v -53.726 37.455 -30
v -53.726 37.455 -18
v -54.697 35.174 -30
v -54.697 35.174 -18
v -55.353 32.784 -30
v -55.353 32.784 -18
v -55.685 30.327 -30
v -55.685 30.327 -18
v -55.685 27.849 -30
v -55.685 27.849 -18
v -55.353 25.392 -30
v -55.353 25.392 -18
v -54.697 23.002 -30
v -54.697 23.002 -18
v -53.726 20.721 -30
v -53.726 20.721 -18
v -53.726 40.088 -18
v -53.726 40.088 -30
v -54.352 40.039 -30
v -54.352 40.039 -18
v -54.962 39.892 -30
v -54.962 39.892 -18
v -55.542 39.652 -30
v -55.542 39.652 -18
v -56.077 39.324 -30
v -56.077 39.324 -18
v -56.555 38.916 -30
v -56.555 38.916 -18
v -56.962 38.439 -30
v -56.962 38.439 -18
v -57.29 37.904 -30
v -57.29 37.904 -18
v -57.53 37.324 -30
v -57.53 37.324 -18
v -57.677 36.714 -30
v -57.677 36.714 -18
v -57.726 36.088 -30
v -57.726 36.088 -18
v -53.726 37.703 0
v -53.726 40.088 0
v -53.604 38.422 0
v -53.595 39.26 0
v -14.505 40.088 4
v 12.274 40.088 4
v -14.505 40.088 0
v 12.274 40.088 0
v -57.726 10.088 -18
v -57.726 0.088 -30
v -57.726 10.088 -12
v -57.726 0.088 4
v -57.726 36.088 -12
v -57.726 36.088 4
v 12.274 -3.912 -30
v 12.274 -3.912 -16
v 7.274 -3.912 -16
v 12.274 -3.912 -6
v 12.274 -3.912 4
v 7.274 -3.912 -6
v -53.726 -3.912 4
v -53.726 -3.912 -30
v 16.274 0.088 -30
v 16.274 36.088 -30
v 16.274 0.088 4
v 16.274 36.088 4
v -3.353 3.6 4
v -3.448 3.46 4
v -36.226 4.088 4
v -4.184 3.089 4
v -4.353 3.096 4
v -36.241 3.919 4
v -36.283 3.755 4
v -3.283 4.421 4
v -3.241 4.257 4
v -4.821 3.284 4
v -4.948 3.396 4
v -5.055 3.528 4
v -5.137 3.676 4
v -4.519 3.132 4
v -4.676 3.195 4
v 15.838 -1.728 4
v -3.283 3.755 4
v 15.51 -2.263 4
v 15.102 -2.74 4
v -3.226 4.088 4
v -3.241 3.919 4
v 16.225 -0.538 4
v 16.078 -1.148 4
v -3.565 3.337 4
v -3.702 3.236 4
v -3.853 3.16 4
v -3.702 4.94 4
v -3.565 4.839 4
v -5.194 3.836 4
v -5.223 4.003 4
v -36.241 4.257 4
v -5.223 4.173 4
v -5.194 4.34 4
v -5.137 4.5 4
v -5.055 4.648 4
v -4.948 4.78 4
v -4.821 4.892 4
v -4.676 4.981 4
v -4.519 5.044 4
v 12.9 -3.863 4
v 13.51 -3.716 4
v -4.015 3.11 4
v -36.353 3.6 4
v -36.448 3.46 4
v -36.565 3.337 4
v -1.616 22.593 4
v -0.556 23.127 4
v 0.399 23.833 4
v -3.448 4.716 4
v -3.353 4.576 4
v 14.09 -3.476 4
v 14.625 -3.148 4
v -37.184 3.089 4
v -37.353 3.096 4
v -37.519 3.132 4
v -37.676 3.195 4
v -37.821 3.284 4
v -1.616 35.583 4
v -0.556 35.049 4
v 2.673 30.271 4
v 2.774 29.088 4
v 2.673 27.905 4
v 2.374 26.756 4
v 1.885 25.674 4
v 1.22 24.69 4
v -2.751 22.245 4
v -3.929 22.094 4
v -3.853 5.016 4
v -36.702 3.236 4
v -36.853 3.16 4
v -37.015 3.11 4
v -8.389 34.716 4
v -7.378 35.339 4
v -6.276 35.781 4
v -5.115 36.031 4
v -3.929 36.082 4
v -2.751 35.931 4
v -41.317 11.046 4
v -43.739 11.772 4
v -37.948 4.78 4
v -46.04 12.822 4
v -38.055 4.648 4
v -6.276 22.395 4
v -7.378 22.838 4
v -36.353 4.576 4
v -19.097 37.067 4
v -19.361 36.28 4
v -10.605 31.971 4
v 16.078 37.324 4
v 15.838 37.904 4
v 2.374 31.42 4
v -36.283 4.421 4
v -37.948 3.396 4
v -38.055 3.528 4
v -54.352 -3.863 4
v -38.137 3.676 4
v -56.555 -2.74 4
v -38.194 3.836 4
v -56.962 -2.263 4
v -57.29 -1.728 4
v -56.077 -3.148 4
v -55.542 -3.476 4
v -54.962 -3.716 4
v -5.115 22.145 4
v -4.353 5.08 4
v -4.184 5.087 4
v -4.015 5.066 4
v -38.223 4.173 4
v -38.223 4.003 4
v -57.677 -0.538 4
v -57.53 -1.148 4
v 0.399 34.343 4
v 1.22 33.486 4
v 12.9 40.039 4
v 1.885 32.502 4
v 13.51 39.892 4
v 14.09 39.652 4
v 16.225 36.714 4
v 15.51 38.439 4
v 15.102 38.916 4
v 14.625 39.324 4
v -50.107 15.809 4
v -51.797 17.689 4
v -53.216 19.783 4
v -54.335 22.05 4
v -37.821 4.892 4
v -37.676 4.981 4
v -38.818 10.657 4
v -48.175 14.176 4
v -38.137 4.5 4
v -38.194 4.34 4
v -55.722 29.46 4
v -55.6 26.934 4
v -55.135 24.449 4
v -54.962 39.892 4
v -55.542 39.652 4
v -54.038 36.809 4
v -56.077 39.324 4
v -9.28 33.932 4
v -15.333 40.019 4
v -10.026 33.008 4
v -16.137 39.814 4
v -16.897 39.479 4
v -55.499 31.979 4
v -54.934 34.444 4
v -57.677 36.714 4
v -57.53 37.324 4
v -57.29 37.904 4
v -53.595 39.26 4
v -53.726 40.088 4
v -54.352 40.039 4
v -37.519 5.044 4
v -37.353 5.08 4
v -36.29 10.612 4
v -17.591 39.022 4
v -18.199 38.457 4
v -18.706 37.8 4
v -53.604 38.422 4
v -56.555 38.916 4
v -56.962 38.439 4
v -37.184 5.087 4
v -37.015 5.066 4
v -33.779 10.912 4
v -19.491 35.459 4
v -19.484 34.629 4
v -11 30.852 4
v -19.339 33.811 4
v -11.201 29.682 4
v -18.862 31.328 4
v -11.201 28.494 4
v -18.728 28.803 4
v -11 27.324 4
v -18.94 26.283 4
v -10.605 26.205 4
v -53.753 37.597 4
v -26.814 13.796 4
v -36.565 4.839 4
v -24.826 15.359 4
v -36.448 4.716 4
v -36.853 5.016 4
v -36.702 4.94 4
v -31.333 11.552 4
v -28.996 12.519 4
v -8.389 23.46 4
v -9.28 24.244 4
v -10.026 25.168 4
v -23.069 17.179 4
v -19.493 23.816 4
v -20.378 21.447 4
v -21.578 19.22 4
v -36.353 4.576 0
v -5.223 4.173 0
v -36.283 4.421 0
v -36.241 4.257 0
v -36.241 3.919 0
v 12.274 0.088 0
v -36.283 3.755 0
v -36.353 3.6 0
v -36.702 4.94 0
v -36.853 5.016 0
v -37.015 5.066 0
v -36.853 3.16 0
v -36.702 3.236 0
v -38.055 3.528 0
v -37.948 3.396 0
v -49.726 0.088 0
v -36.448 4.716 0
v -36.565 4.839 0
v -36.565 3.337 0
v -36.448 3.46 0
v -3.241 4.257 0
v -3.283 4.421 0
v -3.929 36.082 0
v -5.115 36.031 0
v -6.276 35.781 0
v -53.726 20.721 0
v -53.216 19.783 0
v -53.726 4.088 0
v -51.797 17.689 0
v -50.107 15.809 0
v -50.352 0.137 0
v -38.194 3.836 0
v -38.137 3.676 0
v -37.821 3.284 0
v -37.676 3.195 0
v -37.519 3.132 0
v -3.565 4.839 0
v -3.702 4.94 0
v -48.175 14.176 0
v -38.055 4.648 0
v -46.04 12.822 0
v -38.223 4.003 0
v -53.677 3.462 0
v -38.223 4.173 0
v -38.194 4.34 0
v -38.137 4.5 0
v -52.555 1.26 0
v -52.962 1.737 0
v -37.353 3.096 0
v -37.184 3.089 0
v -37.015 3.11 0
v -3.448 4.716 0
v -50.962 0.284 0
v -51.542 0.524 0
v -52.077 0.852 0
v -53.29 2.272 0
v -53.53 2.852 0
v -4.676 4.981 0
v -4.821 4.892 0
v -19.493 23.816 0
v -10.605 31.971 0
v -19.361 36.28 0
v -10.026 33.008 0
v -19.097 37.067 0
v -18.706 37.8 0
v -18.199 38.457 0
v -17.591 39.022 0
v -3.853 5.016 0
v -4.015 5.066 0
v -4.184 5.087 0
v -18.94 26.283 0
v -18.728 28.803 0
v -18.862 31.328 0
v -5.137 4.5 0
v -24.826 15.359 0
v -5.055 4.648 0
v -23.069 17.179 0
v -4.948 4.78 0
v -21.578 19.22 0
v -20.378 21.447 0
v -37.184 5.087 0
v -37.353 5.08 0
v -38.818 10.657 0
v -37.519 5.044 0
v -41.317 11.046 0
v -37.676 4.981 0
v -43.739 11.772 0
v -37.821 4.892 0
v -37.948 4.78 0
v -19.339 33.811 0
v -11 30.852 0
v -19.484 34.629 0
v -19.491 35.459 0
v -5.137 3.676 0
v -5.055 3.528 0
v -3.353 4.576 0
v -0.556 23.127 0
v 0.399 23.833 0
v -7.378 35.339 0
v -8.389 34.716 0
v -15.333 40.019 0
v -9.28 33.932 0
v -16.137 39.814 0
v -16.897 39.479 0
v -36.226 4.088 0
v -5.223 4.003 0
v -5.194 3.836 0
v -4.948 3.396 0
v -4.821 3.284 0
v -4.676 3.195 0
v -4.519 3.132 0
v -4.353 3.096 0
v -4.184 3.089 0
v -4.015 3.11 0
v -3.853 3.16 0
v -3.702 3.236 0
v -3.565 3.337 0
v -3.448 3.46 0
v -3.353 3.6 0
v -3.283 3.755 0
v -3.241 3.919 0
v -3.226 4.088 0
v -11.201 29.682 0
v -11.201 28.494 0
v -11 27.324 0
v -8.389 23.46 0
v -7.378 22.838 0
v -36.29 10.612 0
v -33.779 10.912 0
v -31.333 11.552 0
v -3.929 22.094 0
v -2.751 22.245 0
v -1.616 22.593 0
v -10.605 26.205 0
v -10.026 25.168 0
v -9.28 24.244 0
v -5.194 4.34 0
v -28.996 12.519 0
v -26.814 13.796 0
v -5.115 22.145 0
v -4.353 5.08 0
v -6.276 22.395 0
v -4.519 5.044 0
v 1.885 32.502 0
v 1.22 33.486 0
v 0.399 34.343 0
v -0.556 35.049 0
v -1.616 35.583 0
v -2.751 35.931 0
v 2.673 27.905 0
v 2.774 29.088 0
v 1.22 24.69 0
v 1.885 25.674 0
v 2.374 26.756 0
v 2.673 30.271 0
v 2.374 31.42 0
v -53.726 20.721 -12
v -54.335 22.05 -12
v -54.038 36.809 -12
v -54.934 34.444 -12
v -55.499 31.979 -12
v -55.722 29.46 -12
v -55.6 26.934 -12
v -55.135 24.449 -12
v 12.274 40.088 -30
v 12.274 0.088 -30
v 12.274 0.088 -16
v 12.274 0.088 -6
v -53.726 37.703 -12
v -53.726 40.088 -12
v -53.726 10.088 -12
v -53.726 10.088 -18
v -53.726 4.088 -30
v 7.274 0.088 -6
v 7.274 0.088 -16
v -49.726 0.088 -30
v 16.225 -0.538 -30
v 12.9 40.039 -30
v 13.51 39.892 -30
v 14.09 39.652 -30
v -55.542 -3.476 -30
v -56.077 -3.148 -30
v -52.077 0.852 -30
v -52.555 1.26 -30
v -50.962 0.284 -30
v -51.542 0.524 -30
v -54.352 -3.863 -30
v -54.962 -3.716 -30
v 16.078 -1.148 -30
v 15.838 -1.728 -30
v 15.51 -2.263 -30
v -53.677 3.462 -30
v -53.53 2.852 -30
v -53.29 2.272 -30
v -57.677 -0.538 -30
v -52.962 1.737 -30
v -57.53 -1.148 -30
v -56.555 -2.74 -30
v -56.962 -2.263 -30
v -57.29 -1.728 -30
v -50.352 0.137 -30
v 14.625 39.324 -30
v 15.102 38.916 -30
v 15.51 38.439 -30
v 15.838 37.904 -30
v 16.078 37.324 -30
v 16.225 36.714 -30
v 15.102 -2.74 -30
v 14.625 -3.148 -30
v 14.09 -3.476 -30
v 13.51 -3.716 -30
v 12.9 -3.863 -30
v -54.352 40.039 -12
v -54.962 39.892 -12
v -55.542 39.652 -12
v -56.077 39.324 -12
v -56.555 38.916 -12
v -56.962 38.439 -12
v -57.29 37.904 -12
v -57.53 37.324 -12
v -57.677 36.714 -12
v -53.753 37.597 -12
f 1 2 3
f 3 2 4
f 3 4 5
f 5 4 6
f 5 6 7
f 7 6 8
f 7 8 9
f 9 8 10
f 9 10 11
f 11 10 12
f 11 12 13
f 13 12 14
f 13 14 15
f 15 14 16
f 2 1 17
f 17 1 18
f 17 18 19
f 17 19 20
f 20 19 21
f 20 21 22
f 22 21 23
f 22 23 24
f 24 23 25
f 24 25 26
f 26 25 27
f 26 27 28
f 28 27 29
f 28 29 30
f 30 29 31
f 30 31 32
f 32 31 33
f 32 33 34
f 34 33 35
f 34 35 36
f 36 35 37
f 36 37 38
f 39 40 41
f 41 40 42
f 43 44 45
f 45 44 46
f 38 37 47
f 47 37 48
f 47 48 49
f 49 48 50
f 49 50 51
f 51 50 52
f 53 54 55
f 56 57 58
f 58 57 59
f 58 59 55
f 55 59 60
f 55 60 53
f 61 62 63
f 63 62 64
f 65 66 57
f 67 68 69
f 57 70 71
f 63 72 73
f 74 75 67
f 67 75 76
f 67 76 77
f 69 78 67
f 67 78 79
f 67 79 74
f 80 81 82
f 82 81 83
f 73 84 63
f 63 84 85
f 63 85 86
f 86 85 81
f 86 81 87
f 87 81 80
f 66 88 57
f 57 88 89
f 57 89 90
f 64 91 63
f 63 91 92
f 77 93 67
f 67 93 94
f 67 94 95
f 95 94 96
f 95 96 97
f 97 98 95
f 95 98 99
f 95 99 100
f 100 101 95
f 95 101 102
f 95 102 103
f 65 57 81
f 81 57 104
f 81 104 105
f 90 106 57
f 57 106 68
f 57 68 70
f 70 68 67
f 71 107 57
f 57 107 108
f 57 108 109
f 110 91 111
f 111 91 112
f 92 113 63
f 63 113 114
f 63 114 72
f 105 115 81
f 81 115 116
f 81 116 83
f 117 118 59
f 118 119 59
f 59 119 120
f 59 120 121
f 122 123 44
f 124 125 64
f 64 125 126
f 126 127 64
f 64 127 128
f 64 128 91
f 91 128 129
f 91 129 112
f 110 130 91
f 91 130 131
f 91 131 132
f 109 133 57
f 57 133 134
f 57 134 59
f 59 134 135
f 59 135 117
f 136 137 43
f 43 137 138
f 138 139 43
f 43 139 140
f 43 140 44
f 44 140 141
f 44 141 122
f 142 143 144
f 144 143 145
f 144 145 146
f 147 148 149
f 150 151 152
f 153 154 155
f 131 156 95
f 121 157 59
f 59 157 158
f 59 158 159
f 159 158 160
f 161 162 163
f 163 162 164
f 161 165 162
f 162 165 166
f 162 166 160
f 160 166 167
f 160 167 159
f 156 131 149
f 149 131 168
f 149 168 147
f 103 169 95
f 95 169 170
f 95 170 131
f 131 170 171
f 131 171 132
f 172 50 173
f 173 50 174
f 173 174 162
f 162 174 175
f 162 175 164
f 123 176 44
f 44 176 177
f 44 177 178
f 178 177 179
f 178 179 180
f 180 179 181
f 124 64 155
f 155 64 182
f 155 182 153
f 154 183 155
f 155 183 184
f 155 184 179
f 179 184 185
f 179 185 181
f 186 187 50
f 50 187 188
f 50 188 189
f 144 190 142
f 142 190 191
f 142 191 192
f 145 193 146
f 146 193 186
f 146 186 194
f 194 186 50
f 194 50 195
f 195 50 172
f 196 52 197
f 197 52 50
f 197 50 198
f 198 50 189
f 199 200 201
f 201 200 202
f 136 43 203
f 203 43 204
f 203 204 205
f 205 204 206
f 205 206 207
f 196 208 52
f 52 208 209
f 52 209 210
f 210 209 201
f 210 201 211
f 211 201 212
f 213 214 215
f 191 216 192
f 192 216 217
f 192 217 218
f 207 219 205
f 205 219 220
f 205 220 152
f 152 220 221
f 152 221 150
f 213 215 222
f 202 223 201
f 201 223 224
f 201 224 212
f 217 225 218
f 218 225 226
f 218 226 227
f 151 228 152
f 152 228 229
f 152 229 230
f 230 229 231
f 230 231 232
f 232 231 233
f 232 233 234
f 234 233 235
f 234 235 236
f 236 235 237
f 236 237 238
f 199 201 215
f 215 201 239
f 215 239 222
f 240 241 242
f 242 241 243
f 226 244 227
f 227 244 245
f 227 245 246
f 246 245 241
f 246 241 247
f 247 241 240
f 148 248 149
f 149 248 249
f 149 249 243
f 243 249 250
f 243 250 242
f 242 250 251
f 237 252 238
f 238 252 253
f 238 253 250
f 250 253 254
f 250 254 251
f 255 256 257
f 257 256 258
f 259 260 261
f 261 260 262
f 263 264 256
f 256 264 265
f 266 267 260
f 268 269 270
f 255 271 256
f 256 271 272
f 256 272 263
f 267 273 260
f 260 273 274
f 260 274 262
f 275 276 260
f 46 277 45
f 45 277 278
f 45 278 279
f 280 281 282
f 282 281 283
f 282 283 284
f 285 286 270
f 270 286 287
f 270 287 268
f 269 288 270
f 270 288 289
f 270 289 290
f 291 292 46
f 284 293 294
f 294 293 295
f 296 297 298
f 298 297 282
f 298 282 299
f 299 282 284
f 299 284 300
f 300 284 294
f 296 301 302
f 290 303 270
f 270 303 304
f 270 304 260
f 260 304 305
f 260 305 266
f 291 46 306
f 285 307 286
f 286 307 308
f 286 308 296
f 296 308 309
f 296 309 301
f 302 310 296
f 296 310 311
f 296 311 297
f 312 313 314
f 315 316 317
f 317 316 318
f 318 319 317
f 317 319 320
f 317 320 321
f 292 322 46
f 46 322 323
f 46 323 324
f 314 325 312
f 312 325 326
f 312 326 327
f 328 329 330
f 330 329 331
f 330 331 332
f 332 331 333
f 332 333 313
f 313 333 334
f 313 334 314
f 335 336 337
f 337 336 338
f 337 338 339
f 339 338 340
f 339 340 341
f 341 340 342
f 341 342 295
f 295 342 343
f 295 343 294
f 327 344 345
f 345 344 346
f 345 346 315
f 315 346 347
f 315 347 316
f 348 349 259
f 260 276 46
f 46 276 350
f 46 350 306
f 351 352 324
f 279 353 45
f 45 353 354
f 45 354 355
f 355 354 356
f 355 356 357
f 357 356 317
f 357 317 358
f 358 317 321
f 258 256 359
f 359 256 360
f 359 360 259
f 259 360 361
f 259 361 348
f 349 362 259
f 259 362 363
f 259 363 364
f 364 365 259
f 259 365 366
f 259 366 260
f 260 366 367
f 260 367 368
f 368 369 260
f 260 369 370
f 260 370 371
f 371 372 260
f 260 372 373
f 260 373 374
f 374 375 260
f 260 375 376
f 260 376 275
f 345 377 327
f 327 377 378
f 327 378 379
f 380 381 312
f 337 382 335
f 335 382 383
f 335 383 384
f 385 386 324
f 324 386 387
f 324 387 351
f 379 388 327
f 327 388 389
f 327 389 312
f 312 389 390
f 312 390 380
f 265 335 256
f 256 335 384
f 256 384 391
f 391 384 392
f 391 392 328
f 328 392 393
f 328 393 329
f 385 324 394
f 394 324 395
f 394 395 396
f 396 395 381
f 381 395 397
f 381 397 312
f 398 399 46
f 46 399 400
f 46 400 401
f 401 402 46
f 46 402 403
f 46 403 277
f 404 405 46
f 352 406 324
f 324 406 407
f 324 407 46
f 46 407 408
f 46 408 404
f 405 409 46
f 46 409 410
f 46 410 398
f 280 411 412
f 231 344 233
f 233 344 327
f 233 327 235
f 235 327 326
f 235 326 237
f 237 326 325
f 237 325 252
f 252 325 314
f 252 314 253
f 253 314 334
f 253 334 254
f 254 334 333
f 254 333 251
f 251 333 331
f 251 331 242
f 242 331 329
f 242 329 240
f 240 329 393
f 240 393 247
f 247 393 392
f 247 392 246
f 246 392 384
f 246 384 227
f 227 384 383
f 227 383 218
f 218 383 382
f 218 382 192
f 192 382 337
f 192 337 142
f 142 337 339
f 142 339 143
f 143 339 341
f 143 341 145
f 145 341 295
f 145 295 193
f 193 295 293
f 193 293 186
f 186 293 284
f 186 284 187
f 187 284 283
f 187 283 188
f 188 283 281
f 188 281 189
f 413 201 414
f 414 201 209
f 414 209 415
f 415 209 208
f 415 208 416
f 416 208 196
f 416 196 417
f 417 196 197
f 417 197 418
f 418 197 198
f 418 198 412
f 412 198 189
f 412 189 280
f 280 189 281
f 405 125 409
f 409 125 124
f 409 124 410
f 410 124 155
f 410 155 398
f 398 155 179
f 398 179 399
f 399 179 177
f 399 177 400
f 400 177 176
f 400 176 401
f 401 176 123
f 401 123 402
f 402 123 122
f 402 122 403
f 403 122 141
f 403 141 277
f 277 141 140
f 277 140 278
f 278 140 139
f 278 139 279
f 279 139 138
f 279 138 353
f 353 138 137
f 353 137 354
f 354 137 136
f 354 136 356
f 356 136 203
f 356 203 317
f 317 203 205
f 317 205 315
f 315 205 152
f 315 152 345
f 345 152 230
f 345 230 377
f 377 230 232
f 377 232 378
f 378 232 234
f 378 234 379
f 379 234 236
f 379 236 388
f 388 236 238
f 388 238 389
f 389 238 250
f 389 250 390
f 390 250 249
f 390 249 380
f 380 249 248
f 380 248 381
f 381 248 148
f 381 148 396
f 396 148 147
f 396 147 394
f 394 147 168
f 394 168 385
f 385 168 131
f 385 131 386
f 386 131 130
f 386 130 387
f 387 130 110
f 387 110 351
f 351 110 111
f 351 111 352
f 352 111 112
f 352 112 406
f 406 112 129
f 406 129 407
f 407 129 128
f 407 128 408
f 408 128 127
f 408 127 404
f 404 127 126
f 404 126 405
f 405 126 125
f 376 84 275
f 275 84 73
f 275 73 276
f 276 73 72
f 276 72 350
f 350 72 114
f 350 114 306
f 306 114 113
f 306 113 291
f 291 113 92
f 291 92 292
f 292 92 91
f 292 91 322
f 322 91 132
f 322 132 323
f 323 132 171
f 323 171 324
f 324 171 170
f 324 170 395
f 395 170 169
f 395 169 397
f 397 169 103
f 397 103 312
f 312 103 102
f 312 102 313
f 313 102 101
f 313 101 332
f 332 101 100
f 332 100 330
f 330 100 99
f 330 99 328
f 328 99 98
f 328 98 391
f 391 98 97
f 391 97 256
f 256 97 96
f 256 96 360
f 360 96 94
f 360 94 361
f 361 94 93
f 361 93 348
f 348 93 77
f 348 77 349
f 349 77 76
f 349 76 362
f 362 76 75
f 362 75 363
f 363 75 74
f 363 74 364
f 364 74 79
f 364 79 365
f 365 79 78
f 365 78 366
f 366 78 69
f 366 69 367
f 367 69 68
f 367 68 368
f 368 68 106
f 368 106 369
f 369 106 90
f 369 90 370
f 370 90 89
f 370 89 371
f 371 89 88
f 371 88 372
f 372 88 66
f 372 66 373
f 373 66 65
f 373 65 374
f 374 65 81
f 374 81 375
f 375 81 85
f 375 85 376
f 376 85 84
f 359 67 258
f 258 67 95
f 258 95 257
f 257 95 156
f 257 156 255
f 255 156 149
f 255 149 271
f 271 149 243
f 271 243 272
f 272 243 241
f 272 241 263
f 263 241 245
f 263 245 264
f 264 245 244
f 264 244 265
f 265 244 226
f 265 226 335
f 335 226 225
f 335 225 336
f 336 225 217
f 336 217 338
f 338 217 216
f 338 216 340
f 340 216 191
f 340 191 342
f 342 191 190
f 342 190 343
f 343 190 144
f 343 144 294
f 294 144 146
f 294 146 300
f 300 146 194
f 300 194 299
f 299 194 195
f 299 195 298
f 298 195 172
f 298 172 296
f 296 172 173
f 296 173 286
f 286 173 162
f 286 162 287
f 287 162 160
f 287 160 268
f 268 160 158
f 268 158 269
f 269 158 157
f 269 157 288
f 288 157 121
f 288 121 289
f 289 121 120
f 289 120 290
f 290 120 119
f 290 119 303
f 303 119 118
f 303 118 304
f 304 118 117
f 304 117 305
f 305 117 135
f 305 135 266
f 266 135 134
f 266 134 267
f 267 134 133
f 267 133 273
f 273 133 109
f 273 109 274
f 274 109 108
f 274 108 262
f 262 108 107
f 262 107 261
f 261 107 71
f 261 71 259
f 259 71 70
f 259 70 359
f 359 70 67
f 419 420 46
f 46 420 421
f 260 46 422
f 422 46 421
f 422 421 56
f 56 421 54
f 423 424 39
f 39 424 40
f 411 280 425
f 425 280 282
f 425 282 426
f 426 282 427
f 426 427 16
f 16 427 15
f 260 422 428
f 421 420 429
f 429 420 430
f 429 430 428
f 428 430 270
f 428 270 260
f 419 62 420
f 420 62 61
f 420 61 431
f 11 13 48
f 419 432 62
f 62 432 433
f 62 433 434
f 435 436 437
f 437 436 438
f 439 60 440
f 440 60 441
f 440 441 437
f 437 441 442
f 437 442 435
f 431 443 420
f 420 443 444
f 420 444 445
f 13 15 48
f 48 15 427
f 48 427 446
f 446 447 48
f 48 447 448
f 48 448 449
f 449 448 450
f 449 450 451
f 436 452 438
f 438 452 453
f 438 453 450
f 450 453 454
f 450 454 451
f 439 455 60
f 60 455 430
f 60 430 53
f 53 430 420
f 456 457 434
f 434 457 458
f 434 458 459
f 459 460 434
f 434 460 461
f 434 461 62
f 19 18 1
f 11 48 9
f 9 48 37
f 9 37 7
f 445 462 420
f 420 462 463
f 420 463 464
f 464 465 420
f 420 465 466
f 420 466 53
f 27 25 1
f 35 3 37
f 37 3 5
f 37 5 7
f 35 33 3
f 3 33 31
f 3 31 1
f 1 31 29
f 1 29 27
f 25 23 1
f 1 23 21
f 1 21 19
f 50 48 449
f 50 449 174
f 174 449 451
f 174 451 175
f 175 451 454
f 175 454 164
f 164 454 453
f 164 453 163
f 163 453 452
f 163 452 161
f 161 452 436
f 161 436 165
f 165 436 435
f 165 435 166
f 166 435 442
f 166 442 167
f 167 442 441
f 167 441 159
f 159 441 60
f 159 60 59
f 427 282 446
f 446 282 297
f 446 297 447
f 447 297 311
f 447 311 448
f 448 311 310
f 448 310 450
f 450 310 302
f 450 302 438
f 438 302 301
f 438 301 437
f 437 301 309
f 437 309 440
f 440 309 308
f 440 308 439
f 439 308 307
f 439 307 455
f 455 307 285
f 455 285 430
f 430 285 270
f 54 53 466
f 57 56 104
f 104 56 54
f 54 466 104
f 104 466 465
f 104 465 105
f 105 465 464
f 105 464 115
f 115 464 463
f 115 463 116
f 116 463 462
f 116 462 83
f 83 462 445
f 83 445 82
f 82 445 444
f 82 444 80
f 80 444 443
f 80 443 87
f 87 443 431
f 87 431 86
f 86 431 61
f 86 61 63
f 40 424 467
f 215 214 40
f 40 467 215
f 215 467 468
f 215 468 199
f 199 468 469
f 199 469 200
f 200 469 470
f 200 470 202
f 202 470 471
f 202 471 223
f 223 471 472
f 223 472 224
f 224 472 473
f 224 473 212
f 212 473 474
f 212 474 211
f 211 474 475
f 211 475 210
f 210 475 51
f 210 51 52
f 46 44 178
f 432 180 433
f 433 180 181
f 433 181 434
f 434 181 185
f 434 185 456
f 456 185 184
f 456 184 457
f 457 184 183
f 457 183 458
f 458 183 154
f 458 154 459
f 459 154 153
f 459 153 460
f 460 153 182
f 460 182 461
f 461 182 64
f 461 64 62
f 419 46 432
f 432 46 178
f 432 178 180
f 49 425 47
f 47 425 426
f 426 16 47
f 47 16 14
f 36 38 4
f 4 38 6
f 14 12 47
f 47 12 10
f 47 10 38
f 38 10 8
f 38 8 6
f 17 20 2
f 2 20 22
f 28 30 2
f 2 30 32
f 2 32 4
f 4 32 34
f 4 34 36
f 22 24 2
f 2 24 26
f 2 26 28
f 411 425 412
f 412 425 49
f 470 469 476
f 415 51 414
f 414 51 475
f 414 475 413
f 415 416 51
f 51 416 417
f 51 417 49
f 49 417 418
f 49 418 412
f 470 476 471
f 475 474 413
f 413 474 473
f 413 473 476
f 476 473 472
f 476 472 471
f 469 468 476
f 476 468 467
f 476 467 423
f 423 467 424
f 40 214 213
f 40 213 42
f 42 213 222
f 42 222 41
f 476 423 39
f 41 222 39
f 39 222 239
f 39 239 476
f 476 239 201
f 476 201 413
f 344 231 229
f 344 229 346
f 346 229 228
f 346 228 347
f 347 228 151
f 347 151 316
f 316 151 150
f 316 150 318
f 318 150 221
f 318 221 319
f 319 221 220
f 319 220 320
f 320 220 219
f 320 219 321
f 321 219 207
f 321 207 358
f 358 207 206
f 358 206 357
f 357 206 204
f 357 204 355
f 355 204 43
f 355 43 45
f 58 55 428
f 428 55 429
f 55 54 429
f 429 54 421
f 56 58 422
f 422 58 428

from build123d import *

# Parameters (mm, degrees)
ESQUISSE2_W             = 74
ESQUISSE2_H             = 44
BOSS_EXTRU_1_DEPTH      = 4
ESQUISSE4_R             = 7
ESQUISSE4_R_2           = 18.5
ESQUISSE4_R_3           = 1
ENL_V_MAT_EXTRU_1_DEPTH = 71.394310982
BOSS_EXTRU_2_START      = -4
BOSS_EXTRU_2_DEPTH      = 34
CONG_1_R                = 4
ESQUISSE7_W             = 6
ESQUISSE7_H             = 30
ENL_V_MAT_EXTRU_2_DEPTH = 10
CONG_2_START            = -13
CONG_2_DEPTH            = 18
ESQUISSE8_W             = 5
ESQUISSE8_H             = 10
ENL_V_MAT_EXTRU_3_DEPTH = 77.369560077


with BuildPart() as part:
    # Esquisse2 → Boss.-Extru.1 (new body)
    with BuildSketch(Plane.XY):
        with Locations((-20.726161369, 18.08801956)):
            Rectangle(ESQUISSE2_W, ESQUISSE2_H)
    extrude(amount=BOSS_EXTRU_1_DEPTH)

    # Esquisse4 → Enlèv. mat.-Extru.1 (cut, through all)
    with BuildSketch(Plane.XY.offset(4)):
        with Locations((-4.226161369, 29.08801956)):
            Circle(ESQUISSE4_R)
        with Locations((-37.226161369, 29.08801956)):
            Circle(ESQUISSE4_R_2)
        with Locations((-4.226161369, 4.08801956)):
            Circle(ESQUISSE4_R_3)
        with Locations((-37.226161369, 4.08801956)):
            Circle(ESQUISSE4_R_3)
    extrude(amount=-ENL_V_MAT_EXTRU_1_DEPTH, mode=Mode.SUBTRACT)

    # Boss.-Extru.2: read off the stored shape, not the designer's step
    # Boss.-Extru.2 outline → Boss.-Extru.2 (add)
    with BuildSketch(Plane(origin=(0, 0, 0), x_dir=(-1, 0, 0), z_dir=(0, 0, -1)).offset(BOSS_EXTRU_2_START)):
        with BuildLine():
            Line((-12.273838631, 40.08801956), (-16.273838631, 40.08801956))
            Line((-16.273838631, 40.08801956), (-16.273838631, -3.91198044))
            Line((-16.273838631, -3.91198044), (57.726161369, -3.91198044))
            Line((57.726161369, -3.91198044), (57.726161369, 40.08801956))
            Line((57.726161369, 40.08801956), (53.726161369, 40.08801956))
            Line((53.726161369, 40.08801956), (53.726161369, 37.454619825))
            ThreePointArc((53.726161369, 37.454619825), (55.726161369, 29.08801956), (53.726161369, 20.721419295))
            Line((53.726161369, 20.721419295), (53.726161369, 0.08801956))
            Line((53.726161369, 0.08801956), (-12.273838631, 0.08801956))
            Line((-12.273838631, 0.08801956), (-12.273838631, 40.08801956))
        make_face()
    extrude(amount=BOSS_EXTRU_2_DEPTH)

    # Congé1
    cong_1_edges = [part.edges().sort_by_distance(p)[0] for p in [
        (-53.726161369, 0.08801956, -15),
        (-57.726161369, 40.08801956, -15),
        (16.273838631, 40.08801956, -15),
        (16.273838631, -3.91198044, -15),
        (-57.726161369, -3.91198044, -15),
    ]]
    fillet(cong_1_edges, radius=CONG_1_R - 0.0001)  # a hair under: the kernel refuses the full size

    # Esquisse7 → Enlèv. mat.-Extru.2 (cut)
    with BuildSketch(Plane.ZY.offset(57.726161369)):
        with Locations((-15, 25.08801956)):
            Rectangle(ESQUISSE7_W, ESQUISSE7_H)
    extrude(amount=-ENL_V_MAT_EXTRU_2_DEPTH, mode=Mode.SUBTRACT)

    # Congé2: read off the stored shape, not the designer's step
    # Congé2 outline → Congé2 (cut)
    with BuildSketch(Plane.XY.offset(CONG_2_START)):
        with BuildLine():
            Line((-52.10063615, 40.08801956), (-53.726161369, 40.08801956))
            ThreePointArc((-53.726161369, 40.08801956), (-53.604311661, 38.421947689), (-54.038082686, 36.808725593))
            ThreePointArc((-54.038082686, 36.808725593), (-53.153978754, 38.498366704), (-52.10063615, 40.08801956))
        make_face()
        with BuildLine():
            ThreePointArc((-22.351686589, 40.08801956), (-20.5475812, 37.09270341), (-19.339309991, 33.811423815))
            ThreePointArc((-19.339309991, 33.811423815), (-18.466274294, 38.139004751), (-14.505025834, 40.08801956))
            Line((-14.505025834, 40.08801956), (-22.351686589, 40.08801956))
        make_face()
    extrude(amount=CONG_2_DEPTH, mode=Mode.SUBTRACT)

    # Esquisse8 → Enlèv. mat.-Extru.3 (cut, through all)
    with BuildSketch(Plane(origin=(0, 0.08801956, 0), x_dir=(1, 0, 0), z_dir=(0, 1, 0))):
        with Locations((9.773838631, 11)):
            Rectangle(ESQUISSE8_W, ESQUISSE8_H)
    extrude(amount=-ENL_V_MAT_EXTRU_3_DEPTH, mode=Mode.SUBTRACT)


solid = part.part
